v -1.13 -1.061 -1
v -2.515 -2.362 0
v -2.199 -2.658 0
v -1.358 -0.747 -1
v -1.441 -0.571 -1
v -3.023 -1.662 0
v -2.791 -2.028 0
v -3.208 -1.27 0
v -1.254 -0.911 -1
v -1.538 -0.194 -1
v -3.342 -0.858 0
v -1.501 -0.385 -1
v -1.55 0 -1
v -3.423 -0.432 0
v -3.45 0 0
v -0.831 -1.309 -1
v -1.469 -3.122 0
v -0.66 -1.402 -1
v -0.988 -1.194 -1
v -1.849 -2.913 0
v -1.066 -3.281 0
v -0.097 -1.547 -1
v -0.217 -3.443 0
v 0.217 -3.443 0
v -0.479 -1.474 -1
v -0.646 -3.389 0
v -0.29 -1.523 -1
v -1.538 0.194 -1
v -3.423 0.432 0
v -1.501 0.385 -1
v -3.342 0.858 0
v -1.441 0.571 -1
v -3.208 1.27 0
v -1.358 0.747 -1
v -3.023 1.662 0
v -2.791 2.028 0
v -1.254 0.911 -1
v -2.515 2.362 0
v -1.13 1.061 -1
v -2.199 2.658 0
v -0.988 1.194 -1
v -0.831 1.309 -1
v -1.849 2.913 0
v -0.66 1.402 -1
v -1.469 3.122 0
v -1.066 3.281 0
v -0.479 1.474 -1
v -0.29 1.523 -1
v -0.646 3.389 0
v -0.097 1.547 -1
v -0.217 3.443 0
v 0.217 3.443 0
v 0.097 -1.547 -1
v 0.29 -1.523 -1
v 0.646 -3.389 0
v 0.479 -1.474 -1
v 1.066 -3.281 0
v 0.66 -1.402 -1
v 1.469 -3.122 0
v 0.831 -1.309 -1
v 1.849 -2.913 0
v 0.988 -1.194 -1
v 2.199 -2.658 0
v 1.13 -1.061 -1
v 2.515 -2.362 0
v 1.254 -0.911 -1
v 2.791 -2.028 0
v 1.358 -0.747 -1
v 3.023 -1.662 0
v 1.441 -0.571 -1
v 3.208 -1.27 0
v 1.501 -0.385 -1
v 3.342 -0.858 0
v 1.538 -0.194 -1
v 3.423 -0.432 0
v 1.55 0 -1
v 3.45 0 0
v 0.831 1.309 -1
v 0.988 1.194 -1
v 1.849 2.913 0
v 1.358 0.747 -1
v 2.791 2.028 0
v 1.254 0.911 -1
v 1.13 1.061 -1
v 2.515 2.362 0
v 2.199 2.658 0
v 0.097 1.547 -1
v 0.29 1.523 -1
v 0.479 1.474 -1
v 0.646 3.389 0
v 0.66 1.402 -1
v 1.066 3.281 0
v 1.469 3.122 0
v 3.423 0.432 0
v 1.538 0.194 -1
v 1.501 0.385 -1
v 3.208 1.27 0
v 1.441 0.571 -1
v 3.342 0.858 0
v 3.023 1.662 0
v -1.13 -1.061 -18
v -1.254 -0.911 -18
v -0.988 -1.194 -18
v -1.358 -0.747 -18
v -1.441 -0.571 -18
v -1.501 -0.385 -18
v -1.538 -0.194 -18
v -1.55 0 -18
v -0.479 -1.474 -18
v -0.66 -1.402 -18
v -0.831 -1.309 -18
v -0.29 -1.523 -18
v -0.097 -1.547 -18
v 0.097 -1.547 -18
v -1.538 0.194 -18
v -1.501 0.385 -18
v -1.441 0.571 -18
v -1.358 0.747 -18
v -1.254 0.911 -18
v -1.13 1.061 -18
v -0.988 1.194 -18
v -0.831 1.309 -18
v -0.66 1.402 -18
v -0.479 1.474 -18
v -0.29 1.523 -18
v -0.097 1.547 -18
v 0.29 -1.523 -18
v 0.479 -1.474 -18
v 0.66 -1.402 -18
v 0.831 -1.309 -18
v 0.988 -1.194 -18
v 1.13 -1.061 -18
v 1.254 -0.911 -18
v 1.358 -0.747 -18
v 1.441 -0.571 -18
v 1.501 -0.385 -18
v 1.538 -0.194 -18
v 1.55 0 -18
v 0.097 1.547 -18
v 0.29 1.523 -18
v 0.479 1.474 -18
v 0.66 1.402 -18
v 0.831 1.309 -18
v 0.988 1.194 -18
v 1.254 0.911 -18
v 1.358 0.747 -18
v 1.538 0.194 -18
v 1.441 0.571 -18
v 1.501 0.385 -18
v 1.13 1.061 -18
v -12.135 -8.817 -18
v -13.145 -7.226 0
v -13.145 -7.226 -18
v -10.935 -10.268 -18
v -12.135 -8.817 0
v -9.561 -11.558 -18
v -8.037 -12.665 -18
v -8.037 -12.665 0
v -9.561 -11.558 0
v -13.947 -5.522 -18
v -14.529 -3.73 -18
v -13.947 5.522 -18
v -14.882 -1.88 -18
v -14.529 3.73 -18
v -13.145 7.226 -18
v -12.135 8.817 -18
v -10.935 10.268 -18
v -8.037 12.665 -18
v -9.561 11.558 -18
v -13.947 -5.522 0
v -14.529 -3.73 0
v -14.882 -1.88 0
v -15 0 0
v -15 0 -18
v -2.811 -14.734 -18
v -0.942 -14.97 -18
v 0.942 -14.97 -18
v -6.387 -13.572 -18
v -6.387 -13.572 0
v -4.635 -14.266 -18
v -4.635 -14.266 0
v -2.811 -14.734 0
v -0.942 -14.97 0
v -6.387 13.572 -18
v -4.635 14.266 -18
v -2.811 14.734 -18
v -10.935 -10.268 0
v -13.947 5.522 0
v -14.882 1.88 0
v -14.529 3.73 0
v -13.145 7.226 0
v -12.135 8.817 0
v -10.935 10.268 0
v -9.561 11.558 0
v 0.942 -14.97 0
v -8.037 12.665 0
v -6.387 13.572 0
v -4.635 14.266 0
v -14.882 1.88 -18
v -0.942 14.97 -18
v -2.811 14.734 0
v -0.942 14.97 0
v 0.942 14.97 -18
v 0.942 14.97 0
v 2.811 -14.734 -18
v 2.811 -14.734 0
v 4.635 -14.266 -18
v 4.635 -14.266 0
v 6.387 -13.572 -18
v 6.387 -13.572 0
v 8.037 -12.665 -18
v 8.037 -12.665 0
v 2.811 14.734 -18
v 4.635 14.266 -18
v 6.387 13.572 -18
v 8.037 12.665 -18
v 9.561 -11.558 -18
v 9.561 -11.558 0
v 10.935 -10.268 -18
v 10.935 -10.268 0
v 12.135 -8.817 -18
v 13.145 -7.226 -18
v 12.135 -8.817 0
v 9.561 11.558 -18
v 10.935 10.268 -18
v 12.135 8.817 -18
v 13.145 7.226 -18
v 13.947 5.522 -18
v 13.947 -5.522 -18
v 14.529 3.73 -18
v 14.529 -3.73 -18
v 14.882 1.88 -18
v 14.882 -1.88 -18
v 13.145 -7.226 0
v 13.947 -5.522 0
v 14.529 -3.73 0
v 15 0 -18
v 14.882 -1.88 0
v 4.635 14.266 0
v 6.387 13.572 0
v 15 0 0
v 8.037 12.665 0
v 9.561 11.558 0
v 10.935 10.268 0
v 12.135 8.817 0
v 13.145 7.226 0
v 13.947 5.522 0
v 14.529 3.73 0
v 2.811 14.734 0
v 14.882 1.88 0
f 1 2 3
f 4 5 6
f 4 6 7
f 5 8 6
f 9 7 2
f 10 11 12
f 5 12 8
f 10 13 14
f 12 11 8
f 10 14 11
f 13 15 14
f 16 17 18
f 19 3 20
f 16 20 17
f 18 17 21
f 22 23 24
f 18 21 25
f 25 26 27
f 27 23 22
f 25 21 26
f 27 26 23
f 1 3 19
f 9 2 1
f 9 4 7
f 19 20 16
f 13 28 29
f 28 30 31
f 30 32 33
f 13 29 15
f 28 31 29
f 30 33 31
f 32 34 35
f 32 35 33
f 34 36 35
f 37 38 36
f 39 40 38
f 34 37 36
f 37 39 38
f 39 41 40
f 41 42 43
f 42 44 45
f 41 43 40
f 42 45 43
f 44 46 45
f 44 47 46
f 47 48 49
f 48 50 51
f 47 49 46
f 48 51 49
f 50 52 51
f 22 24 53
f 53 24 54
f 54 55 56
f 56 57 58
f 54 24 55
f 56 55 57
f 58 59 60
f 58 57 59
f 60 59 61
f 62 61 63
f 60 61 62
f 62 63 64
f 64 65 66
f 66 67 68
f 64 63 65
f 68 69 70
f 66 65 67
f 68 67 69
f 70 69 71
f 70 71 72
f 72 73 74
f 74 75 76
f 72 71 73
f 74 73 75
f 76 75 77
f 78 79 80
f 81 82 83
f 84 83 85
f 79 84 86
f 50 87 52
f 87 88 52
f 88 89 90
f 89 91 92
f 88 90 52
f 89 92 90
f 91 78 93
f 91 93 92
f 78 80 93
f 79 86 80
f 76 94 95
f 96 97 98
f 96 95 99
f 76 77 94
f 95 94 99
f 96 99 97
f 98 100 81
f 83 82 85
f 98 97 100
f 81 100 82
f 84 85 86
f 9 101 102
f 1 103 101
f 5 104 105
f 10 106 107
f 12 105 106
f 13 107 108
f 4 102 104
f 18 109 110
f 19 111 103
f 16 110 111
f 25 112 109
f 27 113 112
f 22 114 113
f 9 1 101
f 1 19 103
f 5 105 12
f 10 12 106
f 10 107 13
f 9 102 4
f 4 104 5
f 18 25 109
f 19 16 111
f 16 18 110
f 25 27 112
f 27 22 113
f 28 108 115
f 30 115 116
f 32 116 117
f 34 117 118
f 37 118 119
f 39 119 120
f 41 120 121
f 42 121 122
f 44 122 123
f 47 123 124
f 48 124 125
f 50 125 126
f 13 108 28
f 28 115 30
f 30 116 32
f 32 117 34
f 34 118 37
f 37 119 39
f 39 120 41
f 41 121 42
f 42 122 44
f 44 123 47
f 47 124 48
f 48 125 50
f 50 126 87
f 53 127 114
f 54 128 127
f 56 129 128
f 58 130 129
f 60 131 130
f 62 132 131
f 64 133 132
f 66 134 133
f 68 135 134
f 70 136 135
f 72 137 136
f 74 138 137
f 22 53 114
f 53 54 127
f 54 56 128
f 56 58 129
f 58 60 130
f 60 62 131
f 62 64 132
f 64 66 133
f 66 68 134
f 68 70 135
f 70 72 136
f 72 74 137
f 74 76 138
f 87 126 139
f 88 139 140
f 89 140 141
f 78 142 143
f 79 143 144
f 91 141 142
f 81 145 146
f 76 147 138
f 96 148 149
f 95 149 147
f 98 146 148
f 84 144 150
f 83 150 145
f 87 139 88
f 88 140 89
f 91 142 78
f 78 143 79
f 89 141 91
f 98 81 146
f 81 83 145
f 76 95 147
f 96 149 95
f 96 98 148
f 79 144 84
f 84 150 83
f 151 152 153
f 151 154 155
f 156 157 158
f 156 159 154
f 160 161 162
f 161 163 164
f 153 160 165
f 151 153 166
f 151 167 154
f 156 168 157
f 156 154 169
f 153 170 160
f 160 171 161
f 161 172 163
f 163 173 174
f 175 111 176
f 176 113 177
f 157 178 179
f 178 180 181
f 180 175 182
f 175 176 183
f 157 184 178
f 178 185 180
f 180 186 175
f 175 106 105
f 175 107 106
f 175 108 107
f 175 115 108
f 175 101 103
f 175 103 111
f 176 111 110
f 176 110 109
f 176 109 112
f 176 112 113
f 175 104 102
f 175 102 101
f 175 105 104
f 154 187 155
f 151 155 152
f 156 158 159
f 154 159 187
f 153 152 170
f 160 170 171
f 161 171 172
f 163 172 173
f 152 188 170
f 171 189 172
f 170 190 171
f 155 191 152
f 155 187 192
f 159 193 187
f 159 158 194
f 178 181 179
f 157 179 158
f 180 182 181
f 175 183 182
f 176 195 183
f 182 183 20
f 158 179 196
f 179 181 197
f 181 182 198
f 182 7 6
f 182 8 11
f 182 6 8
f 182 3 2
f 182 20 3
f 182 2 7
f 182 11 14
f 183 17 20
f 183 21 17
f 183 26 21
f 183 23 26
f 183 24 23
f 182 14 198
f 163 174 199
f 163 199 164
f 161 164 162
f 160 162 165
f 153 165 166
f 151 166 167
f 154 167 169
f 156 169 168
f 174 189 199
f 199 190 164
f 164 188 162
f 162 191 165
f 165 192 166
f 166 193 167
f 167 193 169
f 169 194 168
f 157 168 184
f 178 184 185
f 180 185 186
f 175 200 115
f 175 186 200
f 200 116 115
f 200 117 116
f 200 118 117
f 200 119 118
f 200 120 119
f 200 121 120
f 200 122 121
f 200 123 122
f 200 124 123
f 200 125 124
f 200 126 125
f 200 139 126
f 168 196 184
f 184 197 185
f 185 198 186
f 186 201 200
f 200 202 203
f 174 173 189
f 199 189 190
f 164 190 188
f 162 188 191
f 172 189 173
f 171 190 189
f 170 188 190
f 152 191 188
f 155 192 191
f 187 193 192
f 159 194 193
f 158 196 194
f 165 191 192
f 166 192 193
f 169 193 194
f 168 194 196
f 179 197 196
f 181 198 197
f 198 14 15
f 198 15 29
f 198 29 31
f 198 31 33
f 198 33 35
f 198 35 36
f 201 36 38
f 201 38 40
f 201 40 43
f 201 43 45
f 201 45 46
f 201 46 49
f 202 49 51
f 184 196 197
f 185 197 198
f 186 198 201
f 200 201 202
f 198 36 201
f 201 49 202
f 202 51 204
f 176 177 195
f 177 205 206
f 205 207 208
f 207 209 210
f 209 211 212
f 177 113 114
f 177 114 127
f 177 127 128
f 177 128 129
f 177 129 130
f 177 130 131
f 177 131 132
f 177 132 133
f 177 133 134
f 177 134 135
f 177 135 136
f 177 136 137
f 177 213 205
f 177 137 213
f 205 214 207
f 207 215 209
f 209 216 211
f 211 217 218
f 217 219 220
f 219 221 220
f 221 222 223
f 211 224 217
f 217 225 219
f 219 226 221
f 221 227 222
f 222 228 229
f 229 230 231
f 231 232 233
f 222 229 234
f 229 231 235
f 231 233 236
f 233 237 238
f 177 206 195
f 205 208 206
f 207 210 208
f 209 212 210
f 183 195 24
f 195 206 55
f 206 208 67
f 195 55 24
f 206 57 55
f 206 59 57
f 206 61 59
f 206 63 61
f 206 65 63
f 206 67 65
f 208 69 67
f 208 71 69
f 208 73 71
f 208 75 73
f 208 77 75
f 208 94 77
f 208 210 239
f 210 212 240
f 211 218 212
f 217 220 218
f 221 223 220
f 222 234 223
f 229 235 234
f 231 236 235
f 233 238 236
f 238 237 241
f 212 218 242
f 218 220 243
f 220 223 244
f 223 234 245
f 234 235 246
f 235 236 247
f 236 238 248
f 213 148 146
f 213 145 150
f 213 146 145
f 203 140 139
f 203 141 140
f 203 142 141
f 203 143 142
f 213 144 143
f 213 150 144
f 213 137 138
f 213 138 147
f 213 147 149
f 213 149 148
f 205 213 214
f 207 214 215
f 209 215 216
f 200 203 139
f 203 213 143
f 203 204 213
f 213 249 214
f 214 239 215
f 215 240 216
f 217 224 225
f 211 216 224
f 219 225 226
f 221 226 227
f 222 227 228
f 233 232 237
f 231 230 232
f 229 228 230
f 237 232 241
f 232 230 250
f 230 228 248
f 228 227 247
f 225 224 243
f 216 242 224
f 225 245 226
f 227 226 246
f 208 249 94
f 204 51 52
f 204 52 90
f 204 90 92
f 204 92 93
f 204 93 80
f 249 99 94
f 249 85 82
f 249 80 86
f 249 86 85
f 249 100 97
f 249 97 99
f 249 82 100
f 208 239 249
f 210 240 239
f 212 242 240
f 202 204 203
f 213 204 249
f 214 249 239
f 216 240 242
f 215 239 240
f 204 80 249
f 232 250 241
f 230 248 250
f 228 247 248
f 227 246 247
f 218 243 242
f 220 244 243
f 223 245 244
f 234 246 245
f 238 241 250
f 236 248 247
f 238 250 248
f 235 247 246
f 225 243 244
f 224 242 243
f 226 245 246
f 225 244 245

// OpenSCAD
$fn = 50;

difference() {
	union() {
		translate(v = [0, 0, -18.0]) {
			cylinder(h = 18, r = 15.0);
		}
	}
	union() {
		translate(v = [0, 0, 0]) {
			rotate(a = [0, 0, 0]) {
				difference() {
					union() {
						translate(v = [0, 0, -21.0]) {
							cylinder(h = 21, r = 1.25);
						}
						translate(v = [0, 0, -1.0]) {
							cylinder(h = 1.0, r1 = 1.55, r2 = 3.45);
						}
						translate(v = [0, 0, -21.0]) {
							cylinder(h = 21, r = 1.55);
						}
						translate(v = [0, 0, -21.0]) {
							cylinder(h = 21, r = 1.25);
						}
					}
					union();
				}
			}
		}
	}
}
